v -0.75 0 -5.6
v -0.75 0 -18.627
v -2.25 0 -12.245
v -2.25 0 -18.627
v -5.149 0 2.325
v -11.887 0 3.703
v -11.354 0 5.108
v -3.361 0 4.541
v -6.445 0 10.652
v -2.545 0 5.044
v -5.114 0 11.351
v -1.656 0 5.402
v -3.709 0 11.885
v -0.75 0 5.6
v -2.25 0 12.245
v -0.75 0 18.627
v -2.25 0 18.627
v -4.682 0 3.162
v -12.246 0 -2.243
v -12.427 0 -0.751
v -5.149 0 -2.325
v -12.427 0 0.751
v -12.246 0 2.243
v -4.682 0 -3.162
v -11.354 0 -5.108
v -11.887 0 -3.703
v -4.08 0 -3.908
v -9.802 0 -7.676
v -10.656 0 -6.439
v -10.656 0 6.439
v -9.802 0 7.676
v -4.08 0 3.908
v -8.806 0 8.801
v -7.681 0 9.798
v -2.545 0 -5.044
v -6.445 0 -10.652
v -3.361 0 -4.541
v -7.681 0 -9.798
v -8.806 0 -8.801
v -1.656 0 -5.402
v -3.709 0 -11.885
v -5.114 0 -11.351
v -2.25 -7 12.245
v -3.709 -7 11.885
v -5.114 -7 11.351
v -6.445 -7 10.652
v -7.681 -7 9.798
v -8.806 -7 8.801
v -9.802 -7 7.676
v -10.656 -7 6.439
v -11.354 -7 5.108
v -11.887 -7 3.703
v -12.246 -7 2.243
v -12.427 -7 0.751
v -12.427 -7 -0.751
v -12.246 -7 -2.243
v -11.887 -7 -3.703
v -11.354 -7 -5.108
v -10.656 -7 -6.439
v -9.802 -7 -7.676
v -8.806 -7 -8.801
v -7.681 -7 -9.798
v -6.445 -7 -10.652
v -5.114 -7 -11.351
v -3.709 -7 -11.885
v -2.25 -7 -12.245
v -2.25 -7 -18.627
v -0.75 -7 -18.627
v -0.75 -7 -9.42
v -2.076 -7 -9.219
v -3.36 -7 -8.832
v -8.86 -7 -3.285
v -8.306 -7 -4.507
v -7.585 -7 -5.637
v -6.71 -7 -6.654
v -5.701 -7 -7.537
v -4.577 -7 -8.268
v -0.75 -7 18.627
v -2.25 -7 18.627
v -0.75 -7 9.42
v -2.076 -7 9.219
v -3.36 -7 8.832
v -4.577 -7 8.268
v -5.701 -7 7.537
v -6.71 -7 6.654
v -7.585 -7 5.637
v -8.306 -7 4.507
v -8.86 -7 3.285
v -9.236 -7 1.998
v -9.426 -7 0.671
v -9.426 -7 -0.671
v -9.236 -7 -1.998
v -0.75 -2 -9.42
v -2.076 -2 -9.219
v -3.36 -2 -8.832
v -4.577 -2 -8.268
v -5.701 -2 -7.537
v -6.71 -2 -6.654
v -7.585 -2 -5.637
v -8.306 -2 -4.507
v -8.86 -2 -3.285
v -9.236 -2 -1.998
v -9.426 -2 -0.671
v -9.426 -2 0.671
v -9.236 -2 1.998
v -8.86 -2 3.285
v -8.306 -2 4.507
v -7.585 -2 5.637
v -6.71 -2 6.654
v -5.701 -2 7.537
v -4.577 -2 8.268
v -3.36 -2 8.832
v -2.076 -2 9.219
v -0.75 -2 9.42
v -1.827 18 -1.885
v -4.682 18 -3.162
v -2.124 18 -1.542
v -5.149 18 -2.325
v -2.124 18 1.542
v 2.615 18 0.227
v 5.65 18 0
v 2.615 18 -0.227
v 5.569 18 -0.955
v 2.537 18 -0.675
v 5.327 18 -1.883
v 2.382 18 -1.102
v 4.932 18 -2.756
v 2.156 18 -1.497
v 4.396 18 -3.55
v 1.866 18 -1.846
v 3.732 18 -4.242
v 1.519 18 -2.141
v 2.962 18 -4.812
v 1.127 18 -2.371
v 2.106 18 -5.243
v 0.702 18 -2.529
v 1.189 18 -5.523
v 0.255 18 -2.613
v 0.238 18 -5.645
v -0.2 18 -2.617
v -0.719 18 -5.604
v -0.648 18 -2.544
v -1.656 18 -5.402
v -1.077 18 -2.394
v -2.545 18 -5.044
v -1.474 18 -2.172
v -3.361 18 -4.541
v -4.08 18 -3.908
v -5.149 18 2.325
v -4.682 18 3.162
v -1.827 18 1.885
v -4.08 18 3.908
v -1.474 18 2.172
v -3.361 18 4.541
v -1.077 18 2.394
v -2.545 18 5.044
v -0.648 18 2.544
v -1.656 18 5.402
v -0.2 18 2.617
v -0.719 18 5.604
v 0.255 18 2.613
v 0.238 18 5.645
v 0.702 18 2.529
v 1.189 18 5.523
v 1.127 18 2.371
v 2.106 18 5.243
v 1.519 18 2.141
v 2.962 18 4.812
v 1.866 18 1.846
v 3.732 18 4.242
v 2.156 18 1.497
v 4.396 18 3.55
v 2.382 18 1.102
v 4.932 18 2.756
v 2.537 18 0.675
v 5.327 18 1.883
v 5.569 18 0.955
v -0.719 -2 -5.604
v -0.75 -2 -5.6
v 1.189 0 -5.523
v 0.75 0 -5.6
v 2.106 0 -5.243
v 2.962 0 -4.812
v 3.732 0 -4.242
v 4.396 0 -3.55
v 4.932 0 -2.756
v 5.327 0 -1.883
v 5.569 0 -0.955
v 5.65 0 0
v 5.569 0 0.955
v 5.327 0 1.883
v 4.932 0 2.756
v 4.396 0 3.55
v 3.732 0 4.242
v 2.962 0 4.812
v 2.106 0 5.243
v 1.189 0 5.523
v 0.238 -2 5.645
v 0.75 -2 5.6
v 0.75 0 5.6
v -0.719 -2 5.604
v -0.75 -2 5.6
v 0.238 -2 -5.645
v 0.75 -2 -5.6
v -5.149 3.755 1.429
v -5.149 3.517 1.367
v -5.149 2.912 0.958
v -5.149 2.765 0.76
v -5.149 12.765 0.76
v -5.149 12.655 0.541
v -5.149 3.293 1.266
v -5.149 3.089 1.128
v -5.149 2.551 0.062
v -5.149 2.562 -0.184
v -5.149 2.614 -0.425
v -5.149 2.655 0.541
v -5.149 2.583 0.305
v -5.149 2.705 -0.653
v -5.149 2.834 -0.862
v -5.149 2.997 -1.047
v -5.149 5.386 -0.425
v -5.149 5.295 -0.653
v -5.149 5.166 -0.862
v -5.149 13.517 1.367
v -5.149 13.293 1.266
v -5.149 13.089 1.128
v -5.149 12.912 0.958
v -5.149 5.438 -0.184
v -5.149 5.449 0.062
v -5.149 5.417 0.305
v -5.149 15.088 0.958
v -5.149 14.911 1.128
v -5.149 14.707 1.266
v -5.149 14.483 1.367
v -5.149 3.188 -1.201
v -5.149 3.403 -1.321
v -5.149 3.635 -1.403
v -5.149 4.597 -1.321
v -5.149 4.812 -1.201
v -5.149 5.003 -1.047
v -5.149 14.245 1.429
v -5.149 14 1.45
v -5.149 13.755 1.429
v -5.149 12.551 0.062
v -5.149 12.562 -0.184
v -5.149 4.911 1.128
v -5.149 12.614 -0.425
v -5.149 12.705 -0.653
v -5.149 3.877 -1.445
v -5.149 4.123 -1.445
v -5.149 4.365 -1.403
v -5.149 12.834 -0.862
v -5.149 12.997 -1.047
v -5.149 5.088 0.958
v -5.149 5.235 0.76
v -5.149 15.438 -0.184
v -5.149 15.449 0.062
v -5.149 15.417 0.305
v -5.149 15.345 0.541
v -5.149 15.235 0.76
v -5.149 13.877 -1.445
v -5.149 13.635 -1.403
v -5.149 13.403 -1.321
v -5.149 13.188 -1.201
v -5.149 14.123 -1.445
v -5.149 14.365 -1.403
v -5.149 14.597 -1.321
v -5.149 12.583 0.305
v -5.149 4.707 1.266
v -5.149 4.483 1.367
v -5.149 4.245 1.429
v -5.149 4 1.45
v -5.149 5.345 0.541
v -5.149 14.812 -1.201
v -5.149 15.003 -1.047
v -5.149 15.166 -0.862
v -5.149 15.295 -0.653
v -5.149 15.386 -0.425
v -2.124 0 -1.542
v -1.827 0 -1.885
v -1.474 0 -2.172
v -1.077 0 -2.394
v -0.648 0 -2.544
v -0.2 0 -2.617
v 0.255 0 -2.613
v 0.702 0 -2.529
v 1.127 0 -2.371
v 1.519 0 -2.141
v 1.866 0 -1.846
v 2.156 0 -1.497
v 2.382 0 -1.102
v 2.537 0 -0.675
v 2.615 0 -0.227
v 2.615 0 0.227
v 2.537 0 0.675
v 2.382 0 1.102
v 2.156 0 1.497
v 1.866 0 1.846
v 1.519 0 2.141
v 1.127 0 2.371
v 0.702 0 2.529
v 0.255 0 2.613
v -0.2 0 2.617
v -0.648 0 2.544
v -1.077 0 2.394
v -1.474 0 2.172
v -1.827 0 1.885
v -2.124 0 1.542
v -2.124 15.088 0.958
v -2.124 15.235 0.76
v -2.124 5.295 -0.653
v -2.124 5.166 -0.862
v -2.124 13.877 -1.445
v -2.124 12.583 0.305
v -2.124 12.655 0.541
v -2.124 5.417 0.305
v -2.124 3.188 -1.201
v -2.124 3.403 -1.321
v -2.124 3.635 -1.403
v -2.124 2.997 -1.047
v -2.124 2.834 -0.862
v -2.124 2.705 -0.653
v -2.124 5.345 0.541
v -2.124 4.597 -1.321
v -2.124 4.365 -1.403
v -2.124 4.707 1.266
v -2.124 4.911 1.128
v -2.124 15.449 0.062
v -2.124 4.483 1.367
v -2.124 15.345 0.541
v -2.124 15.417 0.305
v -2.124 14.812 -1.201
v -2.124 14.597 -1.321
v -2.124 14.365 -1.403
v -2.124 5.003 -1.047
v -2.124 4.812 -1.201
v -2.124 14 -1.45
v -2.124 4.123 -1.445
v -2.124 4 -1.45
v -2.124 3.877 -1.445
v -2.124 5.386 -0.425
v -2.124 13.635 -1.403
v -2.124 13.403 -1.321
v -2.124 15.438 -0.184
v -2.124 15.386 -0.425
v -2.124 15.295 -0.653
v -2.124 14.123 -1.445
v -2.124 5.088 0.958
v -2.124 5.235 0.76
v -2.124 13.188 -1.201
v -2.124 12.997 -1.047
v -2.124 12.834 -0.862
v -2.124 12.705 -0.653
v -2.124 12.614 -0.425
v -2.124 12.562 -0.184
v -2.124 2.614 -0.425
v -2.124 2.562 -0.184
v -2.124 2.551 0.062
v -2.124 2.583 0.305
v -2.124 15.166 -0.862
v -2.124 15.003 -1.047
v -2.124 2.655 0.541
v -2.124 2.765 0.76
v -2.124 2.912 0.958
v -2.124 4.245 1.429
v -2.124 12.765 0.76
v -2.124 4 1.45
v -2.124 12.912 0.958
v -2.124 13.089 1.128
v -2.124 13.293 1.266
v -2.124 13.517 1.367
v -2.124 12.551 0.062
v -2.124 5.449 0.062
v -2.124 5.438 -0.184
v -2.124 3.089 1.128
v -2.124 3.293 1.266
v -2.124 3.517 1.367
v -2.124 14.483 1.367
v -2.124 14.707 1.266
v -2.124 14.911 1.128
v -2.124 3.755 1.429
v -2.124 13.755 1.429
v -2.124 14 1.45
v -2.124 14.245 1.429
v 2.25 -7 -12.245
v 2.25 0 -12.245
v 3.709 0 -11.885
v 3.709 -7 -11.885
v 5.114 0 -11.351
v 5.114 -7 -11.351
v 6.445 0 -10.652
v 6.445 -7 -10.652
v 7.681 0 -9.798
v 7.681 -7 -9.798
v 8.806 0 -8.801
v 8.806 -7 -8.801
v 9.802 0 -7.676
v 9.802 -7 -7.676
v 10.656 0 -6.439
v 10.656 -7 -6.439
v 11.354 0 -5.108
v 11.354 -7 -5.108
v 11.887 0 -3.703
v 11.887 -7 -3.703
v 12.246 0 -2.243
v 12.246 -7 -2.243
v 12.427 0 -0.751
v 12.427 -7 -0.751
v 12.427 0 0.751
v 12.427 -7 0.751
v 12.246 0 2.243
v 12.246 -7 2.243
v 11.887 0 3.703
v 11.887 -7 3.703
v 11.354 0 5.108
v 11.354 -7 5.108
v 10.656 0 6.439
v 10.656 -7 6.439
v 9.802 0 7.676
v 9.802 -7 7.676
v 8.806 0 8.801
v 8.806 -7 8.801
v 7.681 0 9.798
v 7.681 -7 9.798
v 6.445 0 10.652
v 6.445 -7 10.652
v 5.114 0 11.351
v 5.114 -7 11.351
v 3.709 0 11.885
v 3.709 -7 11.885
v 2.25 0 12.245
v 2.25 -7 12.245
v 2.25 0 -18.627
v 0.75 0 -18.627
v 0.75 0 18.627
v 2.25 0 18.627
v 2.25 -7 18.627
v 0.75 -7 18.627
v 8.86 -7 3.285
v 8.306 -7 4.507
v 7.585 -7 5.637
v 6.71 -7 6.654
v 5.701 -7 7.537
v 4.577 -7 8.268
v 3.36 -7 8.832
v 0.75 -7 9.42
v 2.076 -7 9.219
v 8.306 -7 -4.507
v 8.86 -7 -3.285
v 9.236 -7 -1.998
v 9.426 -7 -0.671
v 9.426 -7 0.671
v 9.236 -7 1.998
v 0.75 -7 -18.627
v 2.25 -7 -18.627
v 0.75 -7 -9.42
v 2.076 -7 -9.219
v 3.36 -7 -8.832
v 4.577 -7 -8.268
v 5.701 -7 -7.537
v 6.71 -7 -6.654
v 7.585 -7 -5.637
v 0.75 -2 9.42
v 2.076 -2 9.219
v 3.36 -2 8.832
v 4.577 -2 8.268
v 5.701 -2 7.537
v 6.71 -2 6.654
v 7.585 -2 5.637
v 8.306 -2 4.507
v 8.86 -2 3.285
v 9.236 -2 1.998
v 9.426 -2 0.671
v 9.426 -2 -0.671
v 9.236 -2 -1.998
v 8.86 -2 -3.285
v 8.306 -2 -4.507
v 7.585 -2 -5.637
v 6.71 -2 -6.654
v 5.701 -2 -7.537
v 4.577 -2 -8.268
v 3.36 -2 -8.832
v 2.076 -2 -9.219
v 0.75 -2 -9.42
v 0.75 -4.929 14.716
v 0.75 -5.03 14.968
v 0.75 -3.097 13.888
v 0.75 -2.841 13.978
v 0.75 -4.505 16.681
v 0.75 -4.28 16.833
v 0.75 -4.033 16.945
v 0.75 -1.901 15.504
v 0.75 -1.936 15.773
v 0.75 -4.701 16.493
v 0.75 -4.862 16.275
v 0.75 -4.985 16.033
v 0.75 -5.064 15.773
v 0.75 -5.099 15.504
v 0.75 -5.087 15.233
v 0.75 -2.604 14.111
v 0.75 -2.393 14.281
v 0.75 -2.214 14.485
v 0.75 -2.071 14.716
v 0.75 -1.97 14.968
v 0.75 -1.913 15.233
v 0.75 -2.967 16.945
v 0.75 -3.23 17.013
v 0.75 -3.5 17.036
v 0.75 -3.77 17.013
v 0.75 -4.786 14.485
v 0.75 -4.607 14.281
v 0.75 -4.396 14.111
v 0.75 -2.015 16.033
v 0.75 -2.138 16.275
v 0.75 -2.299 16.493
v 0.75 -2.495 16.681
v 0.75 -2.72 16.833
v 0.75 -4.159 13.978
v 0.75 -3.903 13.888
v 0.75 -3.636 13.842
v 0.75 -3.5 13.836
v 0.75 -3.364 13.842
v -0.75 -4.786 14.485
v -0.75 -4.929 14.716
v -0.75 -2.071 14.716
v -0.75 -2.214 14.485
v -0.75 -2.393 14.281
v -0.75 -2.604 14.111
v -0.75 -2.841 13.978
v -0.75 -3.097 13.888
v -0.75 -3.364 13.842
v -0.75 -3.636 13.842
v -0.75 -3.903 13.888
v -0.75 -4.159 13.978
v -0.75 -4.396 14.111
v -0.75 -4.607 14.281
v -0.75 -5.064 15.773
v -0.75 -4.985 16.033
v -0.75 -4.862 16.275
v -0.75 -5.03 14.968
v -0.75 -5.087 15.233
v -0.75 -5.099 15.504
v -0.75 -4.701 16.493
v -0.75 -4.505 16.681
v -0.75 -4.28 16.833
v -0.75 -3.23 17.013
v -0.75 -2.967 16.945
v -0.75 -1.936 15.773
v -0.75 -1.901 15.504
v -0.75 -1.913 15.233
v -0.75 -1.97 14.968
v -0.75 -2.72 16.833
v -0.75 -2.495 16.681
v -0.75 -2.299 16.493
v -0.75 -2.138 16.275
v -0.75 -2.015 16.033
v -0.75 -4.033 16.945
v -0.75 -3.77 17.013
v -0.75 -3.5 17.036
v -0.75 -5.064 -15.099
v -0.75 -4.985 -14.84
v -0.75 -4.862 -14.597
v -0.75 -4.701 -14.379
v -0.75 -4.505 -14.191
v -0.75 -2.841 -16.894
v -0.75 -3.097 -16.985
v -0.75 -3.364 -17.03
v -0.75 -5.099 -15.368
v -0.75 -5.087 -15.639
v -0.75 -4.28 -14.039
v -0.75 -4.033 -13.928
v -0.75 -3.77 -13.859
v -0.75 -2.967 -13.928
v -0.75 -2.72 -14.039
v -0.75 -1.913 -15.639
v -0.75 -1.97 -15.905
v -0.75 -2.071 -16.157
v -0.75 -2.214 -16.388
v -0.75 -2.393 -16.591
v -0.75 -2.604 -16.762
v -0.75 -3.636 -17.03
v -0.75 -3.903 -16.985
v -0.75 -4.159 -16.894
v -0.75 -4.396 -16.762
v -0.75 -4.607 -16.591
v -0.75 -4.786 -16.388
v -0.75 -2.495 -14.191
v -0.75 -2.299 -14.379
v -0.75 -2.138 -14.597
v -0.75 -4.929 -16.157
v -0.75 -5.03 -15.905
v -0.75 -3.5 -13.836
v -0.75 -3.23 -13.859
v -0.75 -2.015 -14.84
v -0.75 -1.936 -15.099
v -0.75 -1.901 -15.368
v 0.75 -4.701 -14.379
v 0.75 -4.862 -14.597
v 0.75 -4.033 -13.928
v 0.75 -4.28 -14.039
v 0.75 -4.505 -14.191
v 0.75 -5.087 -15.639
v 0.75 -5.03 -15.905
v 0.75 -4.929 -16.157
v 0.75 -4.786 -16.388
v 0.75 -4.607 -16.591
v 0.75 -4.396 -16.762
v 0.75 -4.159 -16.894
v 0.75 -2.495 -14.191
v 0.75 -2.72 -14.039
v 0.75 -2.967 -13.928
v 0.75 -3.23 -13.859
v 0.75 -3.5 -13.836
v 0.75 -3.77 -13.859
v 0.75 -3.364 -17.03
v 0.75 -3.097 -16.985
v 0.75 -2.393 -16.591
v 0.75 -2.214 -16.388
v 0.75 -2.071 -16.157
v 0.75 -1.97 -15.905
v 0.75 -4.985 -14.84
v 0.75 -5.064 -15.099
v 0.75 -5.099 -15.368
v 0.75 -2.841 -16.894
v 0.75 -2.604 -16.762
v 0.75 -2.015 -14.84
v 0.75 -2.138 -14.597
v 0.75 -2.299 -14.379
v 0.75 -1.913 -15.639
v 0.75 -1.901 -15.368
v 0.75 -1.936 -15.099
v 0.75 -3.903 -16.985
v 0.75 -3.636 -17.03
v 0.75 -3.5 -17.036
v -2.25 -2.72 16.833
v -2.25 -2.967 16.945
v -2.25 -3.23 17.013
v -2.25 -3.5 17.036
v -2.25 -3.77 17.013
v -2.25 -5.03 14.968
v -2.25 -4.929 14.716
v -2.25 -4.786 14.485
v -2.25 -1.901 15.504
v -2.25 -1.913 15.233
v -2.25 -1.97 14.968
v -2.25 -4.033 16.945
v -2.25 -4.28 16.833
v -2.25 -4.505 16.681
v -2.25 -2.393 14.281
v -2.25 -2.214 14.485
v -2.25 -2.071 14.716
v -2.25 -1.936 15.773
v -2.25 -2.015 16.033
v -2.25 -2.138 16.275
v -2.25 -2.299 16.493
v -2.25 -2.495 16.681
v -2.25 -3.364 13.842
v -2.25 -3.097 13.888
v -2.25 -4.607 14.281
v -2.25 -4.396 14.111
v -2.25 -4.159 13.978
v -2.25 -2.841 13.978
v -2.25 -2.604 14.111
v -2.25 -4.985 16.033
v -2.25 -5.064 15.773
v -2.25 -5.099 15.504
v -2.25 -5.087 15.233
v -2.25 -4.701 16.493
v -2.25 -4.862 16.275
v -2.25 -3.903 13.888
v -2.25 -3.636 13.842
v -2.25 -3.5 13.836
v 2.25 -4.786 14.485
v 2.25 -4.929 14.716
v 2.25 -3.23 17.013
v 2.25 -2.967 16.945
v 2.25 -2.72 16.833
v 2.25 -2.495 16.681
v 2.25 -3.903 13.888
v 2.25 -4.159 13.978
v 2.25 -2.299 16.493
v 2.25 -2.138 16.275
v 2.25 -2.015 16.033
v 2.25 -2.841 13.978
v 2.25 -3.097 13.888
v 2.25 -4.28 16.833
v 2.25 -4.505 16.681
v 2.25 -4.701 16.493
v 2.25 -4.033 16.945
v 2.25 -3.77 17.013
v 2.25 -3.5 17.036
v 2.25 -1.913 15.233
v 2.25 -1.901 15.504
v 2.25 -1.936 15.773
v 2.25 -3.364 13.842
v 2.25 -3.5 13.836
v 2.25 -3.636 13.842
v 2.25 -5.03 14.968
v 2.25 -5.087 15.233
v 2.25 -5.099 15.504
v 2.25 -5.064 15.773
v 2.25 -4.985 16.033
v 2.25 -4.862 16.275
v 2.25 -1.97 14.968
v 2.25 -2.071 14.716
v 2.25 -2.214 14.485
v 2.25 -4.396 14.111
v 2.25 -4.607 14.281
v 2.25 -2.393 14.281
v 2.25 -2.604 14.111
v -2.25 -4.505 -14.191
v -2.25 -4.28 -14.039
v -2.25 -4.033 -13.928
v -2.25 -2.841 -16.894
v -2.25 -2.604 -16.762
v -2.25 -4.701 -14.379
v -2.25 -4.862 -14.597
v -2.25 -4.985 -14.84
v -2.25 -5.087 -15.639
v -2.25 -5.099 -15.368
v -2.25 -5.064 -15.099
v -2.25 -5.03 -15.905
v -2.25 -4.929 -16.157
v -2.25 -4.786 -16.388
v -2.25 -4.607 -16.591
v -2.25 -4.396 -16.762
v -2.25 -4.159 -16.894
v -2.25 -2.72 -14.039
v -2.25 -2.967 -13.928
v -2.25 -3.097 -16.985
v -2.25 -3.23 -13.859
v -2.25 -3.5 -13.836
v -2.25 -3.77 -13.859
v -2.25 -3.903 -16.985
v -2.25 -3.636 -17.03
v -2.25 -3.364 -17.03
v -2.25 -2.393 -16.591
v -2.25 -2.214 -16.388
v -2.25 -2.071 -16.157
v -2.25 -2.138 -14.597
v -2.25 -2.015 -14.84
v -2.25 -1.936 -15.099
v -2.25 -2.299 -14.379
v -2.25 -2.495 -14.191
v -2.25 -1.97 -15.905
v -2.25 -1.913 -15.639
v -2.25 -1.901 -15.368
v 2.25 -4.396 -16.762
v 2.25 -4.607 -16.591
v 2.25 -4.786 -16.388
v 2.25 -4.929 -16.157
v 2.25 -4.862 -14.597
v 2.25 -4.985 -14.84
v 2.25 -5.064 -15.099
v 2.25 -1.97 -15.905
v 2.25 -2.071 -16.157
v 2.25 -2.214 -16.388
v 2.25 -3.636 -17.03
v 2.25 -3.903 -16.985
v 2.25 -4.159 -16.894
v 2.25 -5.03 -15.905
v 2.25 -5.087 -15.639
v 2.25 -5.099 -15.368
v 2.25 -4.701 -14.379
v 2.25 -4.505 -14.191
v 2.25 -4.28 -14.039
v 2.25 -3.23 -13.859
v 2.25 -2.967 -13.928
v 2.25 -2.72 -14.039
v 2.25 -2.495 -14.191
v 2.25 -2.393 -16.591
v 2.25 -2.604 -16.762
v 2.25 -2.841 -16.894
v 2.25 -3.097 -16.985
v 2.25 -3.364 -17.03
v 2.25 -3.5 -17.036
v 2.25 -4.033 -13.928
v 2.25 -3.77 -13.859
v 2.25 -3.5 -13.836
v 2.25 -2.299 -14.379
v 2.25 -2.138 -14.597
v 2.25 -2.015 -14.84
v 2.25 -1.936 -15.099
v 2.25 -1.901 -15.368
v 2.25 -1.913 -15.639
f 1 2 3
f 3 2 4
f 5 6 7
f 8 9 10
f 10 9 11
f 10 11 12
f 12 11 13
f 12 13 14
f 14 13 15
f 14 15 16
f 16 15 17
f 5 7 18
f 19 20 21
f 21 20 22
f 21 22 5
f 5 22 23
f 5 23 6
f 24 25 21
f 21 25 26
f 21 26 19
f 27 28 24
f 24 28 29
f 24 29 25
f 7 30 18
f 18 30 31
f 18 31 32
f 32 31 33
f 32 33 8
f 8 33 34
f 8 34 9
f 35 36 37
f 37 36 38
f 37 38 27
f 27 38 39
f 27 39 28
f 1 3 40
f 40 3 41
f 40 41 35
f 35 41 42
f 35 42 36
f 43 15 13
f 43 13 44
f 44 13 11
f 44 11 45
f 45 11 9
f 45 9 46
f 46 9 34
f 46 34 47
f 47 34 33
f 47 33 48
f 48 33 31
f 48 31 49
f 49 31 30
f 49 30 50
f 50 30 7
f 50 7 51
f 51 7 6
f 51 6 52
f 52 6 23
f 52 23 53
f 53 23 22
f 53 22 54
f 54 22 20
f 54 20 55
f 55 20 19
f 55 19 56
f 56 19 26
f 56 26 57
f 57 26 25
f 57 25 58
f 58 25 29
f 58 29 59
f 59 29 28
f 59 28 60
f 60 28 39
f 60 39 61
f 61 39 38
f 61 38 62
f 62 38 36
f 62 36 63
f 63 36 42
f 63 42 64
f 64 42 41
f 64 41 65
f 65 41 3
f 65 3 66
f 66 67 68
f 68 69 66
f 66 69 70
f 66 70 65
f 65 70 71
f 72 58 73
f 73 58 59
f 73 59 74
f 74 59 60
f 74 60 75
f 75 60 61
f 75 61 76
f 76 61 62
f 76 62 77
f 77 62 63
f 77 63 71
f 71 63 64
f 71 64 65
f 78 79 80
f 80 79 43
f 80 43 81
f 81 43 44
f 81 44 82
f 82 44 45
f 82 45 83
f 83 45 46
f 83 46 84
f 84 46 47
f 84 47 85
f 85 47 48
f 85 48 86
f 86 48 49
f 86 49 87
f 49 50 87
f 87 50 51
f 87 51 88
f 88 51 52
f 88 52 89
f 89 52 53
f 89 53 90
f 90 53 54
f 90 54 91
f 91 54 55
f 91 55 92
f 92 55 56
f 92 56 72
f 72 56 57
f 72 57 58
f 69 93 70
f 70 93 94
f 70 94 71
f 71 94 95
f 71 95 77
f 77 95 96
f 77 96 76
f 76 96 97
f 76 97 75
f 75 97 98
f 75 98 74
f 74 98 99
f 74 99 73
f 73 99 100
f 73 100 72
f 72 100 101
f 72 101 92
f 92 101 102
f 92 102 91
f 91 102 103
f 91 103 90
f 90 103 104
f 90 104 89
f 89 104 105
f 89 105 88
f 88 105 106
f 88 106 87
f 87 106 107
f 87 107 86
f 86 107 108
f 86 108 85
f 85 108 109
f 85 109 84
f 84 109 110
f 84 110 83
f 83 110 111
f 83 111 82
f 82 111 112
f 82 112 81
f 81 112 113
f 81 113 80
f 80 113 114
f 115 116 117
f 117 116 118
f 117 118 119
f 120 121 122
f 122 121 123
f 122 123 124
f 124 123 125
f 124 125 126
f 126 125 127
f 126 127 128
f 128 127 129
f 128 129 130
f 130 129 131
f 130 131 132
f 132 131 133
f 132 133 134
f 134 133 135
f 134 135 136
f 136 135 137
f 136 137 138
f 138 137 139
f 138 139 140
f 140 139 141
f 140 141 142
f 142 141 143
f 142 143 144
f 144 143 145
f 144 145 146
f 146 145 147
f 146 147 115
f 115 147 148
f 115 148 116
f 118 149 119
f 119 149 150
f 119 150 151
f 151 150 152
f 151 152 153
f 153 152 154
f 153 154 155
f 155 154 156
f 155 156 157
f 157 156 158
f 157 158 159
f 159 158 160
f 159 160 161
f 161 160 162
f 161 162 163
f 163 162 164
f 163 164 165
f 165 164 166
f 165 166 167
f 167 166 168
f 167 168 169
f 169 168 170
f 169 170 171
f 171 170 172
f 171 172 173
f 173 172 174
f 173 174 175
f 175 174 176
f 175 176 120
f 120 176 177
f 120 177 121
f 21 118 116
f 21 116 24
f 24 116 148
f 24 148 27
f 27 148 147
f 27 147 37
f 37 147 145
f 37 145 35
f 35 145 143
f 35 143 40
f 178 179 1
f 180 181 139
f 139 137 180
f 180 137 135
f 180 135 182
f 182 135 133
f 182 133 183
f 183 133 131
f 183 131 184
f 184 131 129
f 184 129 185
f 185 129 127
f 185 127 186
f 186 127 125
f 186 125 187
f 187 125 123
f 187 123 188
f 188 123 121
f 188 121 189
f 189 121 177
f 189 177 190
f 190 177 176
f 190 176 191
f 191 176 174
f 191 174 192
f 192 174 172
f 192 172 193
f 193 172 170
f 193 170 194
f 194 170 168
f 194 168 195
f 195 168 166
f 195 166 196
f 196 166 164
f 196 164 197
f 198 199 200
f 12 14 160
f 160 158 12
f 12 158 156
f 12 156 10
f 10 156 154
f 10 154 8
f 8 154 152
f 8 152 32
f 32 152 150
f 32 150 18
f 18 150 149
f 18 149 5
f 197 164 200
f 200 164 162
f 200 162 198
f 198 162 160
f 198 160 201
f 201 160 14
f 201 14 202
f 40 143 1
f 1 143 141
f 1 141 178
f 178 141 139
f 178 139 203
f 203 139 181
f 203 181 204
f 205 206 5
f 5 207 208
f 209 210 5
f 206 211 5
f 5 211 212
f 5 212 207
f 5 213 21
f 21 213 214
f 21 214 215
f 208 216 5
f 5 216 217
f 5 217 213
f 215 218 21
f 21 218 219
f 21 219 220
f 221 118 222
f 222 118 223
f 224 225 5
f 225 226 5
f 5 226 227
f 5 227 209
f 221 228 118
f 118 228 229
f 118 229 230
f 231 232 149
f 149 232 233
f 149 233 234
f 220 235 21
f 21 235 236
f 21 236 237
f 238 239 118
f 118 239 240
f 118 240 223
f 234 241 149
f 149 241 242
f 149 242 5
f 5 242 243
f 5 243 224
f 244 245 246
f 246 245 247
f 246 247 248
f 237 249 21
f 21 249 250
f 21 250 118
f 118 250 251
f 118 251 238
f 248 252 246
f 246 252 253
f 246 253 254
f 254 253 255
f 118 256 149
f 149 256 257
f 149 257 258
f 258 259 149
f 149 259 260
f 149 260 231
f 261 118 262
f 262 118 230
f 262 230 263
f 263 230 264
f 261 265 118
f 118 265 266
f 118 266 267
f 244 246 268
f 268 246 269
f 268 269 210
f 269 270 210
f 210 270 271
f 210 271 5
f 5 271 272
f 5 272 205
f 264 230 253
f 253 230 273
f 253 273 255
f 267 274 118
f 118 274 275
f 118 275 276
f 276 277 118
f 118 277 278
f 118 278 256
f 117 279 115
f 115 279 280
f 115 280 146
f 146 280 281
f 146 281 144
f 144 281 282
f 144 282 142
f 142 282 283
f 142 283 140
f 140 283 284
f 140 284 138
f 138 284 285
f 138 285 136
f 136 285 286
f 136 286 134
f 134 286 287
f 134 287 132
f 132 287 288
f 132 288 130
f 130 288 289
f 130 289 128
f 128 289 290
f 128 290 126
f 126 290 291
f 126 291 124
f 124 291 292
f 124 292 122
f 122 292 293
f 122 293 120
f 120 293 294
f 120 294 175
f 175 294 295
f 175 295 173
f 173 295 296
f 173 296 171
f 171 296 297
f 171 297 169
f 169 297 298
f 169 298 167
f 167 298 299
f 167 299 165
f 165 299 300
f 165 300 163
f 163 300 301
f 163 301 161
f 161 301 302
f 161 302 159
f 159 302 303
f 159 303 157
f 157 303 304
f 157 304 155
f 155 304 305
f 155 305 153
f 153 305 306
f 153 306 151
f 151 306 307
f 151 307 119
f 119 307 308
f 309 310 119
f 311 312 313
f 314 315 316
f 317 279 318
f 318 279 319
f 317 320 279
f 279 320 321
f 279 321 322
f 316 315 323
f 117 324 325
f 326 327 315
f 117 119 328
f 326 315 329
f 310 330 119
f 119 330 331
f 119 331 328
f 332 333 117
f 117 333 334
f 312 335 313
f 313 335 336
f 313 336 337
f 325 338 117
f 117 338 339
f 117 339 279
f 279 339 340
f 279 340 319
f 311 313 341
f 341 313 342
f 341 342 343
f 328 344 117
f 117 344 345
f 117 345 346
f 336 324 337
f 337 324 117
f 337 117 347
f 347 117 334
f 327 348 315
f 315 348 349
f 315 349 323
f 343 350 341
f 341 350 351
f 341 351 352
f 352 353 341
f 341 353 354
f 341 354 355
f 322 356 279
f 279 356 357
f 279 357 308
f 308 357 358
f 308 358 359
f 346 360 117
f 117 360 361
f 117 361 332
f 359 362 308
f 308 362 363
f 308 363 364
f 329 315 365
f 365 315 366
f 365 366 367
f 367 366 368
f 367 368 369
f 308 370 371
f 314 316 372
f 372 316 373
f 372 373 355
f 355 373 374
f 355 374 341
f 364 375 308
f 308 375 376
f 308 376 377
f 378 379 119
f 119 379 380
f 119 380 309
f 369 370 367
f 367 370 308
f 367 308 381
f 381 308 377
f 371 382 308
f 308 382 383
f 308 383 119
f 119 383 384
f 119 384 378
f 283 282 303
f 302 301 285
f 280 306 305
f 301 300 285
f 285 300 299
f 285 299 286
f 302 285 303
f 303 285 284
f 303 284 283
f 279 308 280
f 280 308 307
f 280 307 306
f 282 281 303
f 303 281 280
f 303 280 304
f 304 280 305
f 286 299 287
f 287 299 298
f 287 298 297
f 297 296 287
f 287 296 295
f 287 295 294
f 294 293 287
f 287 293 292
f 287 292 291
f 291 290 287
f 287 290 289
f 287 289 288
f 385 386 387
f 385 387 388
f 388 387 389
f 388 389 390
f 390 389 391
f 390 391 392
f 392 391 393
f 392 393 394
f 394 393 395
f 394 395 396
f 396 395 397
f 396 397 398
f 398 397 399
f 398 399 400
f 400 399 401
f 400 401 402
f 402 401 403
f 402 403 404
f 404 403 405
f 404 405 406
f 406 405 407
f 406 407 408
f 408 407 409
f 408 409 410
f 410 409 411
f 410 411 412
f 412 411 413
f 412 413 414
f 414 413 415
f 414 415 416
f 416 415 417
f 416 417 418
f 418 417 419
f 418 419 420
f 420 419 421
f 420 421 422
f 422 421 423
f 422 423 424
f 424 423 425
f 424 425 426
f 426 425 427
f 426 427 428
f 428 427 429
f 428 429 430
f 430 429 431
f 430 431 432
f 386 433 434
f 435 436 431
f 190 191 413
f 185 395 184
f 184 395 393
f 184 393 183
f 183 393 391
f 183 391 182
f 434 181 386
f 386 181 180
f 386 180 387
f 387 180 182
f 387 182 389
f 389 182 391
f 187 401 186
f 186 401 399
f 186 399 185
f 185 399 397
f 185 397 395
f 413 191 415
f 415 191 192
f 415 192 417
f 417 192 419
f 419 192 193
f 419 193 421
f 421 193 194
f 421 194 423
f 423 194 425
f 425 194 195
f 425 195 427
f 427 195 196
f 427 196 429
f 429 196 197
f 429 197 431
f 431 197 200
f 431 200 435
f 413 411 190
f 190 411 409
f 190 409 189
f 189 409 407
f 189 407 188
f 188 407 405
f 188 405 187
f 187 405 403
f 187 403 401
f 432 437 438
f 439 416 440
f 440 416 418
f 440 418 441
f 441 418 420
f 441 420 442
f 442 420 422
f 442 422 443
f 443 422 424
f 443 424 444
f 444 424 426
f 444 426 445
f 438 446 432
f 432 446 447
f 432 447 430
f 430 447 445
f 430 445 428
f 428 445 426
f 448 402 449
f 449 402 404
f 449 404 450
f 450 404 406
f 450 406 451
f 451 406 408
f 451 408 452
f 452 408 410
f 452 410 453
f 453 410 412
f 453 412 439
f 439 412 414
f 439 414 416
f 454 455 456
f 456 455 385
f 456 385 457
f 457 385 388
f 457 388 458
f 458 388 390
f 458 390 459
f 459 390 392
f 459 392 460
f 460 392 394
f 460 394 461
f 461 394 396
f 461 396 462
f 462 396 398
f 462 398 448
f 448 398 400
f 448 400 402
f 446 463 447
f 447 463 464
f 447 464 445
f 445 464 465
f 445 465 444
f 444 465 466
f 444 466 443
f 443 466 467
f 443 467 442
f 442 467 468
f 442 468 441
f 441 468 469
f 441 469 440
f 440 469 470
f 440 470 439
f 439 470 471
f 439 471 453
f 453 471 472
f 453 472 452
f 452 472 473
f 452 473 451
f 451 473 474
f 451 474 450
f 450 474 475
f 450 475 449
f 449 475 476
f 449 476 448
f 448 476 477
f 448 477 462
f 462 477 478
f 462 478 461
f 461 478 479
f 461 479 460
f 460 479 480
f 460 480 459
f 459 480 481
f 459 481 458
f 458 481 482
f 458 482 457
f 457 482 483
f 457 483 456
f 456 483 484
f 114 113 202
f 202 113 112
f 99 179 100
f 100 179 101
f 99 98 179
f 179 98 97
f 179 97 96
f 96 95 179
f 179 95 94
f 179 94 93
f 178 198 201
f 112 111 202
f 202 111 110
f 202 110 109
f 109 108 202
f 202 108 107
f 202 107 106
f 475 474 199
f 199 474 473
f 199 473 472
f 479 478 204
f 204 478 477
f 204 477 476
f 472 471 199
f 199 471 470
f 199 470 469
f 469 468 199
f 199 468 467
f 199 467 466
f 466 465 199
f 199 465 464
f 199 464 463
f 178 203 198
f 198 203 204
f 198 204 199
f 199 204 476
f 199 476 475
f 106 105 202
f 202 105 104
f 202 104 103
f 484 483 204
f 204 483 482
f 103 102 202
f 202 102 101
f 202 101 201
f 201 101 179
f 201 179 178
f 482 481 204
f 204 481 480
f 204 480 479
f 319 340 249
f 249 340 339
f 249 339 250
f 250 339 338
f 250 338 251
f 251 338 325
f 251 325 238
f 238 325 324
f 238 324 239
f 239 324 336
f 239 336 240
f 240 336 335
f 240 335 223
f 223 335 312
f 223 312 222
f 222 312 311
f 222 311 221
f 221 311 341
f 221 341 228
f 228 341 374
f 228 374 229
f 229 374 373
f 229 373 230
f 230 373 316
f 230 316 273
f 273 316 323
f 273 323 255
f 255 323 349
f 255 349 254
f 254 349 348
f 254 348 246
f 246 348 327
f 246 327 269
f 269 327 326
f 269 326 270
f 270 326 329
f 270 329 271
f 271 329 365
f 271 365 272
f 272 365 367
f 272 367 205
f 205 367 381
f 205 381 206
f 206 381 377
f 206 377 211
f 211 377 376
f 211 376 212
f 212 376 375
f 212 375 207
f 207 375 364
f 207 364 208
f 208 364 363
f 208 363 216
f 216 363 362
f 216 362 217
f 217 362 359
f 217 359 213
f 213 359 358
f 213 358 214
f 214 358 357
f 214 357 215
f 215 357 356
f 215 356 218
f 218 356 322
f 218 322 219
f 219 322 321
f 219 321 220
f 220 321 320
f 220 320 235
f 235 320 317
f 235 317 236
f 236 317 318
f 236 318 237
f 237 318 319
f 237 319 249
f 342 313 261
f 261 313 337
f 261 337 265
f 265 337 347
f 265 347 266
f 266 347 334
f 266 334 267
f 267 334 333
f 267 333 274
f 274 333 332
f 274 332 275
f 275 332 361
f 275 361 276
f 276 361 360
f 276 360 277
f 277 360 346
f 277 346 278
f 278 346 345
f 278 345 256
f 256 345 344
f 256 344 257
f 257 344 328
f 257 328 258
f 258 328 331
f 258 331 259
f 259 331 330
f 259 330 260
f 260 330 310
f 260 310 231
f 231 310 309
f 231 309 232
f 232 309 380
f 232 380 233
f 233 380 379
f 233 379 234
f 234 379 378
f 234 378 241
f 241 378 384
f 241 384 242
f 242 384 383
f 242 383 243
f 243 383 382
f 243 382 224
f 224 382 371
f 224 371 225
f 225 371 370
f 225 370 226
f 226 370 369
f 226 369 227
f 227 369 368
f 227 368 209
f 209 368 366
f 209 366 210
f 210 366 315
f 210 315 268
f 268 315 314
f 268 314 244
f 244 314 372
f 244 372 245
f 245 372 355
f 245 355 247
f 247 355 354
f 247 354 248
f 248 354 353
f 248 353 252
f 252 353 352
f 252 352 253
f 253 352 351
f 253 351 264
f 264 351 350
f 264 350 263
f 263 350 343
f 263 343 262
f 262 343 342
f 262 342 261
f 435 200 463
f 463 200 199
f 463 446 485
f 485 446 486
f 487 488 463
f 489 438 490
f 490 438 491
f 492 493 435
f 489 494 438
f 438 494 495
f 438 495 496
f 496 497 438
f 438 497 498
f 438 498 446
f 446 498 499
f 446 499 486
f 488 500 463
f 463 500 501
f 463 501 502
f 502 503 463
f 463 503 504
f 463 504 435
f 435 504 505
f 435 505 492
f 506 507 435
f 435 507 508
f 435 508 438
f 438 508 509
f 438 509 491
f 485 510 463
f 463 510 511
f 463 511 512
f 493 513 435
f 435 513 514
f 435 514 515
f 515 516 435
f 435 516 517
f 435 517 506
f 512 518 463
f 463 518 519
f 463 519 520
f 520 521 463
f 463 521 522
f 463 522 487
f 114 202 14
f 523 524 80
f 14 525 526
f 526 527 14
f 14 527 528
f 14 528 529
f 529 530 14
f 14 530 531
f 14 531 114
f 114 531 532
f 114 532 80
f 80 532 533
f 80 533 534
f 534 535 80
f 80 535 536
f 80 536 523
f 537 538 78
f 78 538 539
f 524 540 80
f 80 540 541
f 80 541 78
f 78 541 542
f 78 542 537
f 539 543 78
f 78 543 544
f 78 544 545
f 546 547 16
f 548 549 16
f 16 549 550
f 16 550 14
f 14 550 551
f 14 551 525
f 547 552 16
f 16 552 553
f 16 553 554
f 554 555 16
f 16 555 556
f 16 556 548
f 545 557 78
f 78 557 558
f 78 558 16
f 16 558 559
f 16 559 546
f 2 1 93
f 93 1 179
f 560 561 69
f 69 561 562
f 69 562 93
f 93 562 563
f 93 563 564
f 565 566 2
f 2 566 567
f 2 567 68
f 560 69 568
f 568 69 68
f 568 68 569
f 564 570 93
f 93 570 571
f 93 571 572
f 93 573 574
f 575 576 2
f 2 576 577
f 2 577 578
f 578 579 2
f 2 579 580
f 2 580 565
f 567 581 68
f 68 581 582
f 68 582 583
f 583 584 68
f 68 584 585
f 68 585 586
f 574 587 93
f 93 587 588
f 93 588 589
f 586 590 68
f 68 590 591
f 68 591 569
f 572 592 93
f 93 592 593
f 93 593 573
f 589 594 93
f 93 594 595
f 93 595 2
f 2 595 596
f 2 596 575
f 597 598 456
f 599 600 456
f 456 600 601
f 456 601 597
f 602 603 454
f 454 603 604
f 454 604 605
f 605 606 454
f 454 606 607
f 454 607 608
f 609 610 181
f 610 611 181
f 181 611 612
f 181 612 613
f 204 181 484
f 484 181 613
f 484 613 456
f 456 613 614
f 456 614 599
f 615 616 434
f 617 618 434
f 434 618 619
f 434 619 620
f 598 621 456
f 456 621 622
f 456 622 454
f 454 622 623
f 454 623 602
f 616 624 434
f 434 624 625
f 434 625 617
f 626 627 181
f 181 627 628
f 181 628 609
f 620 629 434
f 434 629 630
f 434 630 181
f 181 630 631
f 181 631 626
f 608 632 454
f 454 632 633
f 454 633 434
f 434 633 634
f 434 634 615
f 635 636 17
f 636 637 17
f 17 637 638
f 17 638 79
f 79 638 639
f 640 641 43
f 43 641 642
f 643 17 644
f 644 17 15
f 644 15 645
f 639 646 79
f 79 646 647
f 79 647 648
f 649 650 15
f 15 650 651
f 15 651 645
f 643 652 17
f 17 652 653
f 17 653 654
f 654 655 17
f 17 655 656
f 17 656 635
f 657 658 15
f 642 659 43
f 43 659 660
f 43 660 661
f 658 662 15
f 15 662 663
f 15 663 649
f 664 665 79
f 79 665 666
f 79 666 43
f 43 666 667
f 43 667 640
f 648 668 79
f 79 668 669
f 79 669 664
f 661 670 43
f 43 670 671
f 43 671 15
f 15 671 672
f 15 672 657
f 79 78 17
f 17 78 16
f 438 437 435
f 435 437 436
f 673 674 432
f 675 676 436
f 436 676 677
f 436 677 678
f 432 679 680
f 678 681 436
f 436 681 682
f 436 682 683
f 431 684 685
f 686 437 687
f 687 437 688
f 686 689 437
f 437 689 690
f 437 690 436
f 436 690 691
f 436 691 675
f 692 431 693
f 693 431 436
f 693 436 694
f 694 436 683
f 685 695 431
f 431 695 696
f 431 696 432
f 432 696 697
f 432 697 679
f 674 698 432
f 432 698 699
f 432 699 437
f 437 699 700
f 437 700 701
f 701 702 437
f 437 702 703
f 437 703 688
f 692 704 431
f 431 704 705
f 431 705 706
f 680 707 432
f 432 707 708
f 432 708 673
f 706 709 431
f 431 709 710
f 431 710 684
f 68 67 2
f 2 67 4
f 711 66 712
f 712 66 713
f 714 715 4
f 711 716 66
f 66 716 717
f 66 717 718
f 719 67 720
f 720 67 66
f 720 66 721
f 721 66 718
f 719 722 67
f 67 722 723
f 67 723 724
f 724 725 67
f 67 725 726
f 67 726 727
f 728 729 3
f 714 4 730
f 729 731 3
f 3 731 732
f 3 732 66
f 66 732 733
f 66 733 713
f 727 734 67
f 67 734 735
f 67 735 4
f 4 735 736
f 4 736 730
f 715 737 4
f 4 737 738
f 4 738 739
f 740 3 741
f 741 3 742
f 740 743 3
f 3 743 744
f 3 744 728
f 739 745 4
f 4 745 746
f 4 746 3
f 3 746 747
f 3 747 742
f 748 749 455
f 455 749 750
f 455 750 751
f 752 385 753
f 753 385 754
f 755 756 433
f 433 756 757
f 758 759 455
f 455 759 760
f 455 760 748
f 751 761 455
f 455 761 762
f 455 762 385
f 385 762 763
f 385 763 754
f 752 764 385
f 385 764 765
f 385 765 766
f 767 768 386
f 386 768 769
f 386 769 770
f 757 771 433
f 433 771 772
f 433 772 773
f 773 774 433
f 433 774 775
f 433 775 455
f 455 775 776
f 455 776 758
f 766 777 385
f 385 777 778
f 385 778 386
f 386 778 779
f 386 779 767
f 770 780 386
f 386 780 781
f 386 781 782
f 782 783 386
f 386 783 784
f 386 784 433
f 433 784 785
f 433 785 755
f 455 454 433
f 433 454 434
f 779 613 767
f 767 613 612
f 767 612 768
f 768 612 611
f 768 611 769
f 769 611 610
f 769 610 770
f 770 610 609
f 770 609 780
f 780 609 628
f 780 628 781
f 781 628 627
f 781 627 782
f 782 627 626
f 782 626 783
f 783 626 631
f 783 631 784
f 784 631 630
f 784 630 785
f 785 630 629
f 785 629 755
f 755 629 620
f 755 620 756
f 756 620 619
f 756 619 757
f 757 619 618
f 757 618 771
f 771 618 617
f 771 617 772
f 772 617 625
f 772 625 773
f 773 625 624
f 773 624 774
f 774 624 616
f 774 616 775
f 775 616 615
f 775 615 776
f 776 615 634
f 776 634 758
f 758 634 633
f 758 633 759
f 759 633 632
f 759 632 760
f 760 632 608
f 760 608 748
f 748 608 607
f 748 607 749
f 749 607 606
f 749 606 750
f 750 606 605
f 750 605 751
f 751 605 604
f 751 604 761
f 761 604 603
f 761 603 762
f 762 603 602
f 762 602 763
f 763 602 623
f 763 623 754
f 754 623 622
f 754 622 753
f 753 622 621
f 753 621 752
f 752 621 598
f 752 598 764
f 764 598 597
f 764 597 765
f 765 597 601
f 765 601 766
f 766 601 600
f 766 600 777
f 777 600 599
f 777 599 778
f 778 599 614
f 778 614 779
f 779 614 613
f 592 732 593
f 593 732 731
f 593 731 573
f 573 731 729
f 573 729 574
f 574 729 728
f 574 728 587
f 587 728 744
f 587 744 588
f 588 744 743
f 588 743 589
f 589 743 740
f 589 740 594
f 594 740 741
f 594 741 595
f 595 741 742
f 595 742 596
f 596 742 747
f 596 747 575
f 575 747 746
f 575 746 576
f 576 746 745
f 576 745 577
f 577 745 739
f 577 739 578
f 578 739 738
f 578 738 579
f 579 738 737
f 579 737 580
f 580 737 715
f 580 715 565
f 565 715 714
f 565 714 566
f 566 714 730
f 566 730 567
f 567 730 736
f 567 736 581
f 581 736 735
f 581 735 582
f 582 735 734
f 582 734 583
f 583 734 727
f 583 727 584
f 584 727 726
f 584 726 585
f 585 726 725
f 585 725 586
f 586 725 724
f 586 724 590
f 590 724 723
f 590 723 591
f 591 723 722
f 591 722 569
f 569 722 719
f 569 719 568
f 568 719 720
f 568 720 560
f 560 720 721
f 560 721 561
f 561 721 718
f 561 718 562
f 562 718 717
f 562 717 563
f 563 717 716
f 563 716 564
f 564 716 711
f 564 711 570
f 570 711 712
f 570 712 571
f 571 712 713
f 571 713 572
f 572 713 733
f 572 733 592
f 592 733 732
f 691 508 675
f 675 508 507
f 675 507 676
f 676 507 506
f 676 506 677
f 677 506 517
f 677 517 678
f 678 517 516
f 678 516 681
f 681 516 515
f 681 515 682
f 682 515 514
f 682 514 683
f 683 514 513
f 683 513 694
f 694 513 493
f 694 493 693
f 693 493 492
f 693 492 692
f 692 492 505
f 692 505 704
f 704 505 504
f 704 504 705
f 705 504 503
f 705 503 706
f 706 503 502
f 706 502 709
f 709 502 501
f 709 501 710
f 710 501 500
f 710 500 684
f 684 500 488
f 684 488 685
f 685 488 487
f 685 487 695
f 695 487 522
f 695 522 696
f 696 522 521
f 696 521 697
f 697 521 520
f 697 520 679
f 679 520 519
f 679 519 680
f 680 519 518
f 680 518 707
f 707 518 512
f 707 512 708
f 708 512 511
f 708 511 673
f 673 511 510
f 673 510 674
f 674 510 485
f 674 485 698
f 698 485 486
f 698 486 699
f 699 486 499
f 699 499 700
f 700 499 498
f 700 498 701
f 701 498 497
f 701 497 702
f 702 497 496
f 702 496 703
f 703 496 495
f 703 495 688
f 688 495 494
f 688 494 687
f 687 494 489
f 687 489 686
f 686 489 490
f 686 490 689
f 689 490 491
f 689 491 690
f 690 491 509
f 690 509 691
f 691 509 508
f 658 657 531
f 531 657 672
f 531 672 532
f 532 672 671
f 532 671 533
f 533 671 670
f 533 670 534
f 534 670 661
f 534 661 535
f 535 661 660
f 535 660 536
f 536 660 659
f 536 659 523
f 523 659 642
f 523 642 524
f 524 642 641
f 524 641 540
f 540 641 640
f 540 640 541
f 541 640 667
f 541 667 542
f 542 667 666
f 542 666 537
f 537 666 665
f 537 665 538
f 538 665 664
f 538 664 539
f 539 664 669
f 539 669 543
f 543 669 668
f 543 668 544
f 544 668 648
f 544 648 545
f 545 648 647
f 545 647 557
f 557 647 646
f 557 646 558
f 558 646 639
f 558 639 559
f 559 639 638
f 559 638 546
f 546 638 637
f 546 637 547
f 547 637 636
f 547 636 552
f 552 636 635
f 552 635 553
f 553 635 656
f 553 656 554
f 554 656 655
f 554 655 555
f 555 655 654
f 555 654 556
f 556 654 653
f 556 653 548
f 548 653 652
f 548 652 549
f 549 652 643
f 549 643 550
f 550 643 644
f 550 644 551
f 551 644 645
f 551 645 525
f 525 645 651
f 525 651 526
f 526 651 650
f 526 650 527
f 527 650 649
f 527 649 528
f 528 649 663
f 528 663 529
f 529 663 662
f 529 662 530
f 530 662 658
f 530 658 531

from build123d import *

# Parameters (mm, degrees)
BOSS_EXTRUDE1_DEPTH = 18
SKETCH2_R           = 12.45
SKETCH2_R_2         = 9.45
BOSS_EXTRUDE2_DEPTH = 7
SKETCH3_R           = 12.45
BOSS_EXTRUDE3_DEPTH = 2
CUT_EXTRUDE1_REACH  = 30.085
SKETCH4_R           = 1.45
CUT_EXTRUDE3_REACH  = 32.578
BOSS_EXTRUDE5_START = -7
BOSS_EXTRUDE5_DEPTH = 7
SKETCH8_R           = 1.6
CUT_EXTRUDE4_DEPTH  = 30.783714089
CUT_EXTRUDE5_DEPTH  = 29.739904748


with BuildPart() as part:
    # Sketch1 → Boss-Extrude1 (new body)
    with BuildSketch(Plane(origin=(0, 0, 0), x_dir=(1, 0, 0), z_dir=(0, 1, 0))):
        with BuildLine():
            Line((-5.149418526, 2.325078245), (-5.149418526, -2.325078245))
            ThreePointArc((-5.149418526, -2.325078245), (5.65, 0), (-5.149418526, 2.325078245))
        make_face()
        with BuildLine():
            Line((-2.124418526, 1.541904967), (-2.124418526, -1.541904967))
            ThreePointArc((-2.124418526, -1.541904967), (2.625, 0), (-2.124418526, 1.541904967))
        make_face(mode=Mode.SUBTRACT)
    extrude(amount=BOSS_EXTRUDE1_DEPTH)



with BuildPart() as body_2:
    # Sketch2 → Boss-Extrude2 (new body)
    with BuildSketch(Plane.XZ):
        with Locations(Location((0, 0, 0), (0, 0, 270))):
            Circle(SKETCH2_R)
        with Locations(Location((0, 0, 0), (0, 0, 270))):
            Circle(SKETCH2_R_2, mode=Mode.SUBTRACT)
    extrude(amount=BOSS_EXTRUDE2_DEPTH)


with BuildPart() as part_1:
    add(part.part)

    add(body_2.part)  # Boss-Extrude3 merges body 2
    # Sketch3 → Boss-Extrude3 (add)
    with BuildSketch(Plane.XZ):
        with Locations(Location((0, 0, 0), (0, 0, 270))):
            Circle(SKETCH3_R)
    extrude(amount=BOSS_EXTRUDE3_DEPTH)

    # Sketch4 → Cut-Extrude1 (cut, up to next)
    with BuildSketch(Plane.ZY.offset(5.149418526), mode=Mode.PRIVATE) as cut_extrude1_sk1:
        with Locations((0, 14)):
            Circle(SKETCH4_R)
    cut_extrude1_tool1 = extrude(cut_extrude1_sk1.sketch, amount=-CUT_EXTRUDE1_REACH, mode=Mode.PRIVATE) & part_1.part
    # Sketch4 → Cut-Extrude1 (cut, up to next)
    with BuildSketch(Plane.ZY.offset(5.149418526), mode=Mode.PRIVATE) as cut_extrude1_sk2:
        with Locations((0, 4)):
            Circle(SKETCH4_R)
    cut_extrude1_tool2 = extrude(cut_extrude1_sk2.sketch, amount=-CUT_EXTRUDE1_REACH, mode=Mode.PRIVATE) & part_1.part
    add(cut_extrude1_tool1.solids().sort_by_distance((-5.149419, 14, 0))[0], mode=Mode.SUBTRACT)
    add(cut_extrude1_tool2.solids().sort_by_distance((-5.149419, 4, 0))[0], mode=Mode.SUBTRACT)

    # Sketch6 → Cut-Extrude3 (cut, up to next)
    with BuildSketch(Plane.XZ.offset(7), mode=Mode.PRIVATE) as cut_extrude3_sk1:
        with BuildLine():
            Line((0.75, 9.420191081), (0.75, 12.427389106))
            ThreePointArc((0.75, 12.427389106), (0, 12.45), (-0.75, 12.427389106))
            Line((-0.75, 12.427389106), (-0.75, 9.420191081))
            ThreePointArc((-0.75, 9.420191081), (0, 9.45), (0.75, 9.420191081))
        make_face()
    cut_extrude3_tool1 = extrude(cut_extrude3_sk1.sketch, amount=-CUT_EXTRUDE3_REACH, mode=Mode.PRIVATE) & part_1.part
    # Sketch6 → Cut-Extrude3 (cut, up to next)
    with BuildSketch(Plane.XZ.offset(7), mode=Mode.PRIVATE) as cut_extrude3_sk2:
        with BuildLine():
            Line((0.75, -9.420191081), (0.75, -12.427389106))
            ThreePointArc((0.75, -12.427389106), (0, -12.45), (-0.75, -12.427389106))
            Line((-0.75, -12.427389106), (-0.75, -9.420191081))
            ThreePointArc((-0.75, -9.420191081), (0, -9.45), (0.75, -9.420191081))
        make_face()
    cut_extrude3_tool2 = extrude(cut_extrude3_sk2.sketch, amount=-CUT_EXTRUDE3_REACH, mode=Mode.PRIVATE) & part_1.part
    add(cut_extrude3_tool1.solids().sort_by_distance((0, -7, 10.941262))[0], mode=Mode.SUBTRACT)
    add(cut_extrude3_tool2.solids().sort_by_distance((0, -7, -10.941262))[0], mode=Mode.SUBTRACT)

    # Sketch7 → Boss-Extrude5 (add)
    with BuildSketch(Plane.XZ.offset(7).offset(BOSS_EXTRUDE5_START)):
        with BuildLine():
            Line((-0.75, 12.427389106), (-0.75, 18.627389106))
            Line((-0.75, 18.627389106), (-2.25, 18.627389106))
            Line((-2.25, 18.627389106), (-2.25, 12.244998979))
            ThreePointArc((-2.25, 12.244998979), (-1.502769623, 12.35897178), (-0.75, 12.427389106))
        make_face()
        with BuildLine():
            Line((2.25, 18.627389106), (2.25, 12.244998979))
            ThreePointArc((2.25, 12.244998979), (1.502769623, 12.35897178), (0.75, 12.427389106))
            Line((0.75, 12.427389106), (0.75, 18.627389106))
            Line((0.75, 18.627389106), (2.25, 18.627389106))
        make_face()
        with BuildLine():
            Line((0.75, -12.427389106), (0.75, -18.627389106))
            Line((0.75, -18.627389106), (2.25, -18.627389106))
            Line((2.25, -18.627389106), (2.25, -12.244998979))
            ThreePointArc((2.25, -12.244998979), (1.502769623, -12.35897178), (0.75, -12.427389106))
        make_face()
        with BuildLine():
            Line((-2.25, -18.627389106), (-2.25, -12.244998979))
            ThreePointArc((-2.25, -12.244998979), (-1.502769623, -12.35897178), (-0.75, -12.427389106))
            Line((-0.75, -12.427389106), (-0.75, -18.627389106))
            Line((-0.75, -18.627389106), (-2.25, -18.627389106))
        make_face()
    extrude(amount=BOSS_EXTRUDE5_DEPTH)

    # Sketch8 → Cut-Extrude4 (cut, through all)
    with BuildSketch(Plane.ZY.offset(2.25)):
        with Locations(Location((-15.436194043, -3.5, 0), (0, 0, 180))):
            Circle(SKETCH8_R)
        with Locations(Location((15.436194043, -3.5, 0), (0, 0, 180))):
            Circle(SKETCH8_R)
    extrude(amount=-CUT_EXTRUDE4_DEPTH, mode=Mode.SUBTRACT)

    # Sketch9 → Cut-Extrude5 (cut, through all)
    with BuildSketch(Plane(origin=(0, 0, 0), x_dir=(1, 0, 0), z_dir=(0, 1, 0))):
        with BuildLine():
            Line((-0.75, -9.420191081), (-0.75, -5.6))
            ThreePointArc((-0.75, -5.6), (0, -5.65), (0.75, -5.6))
            Line((0.75, -5.6), (0.75, -9.420191081))
            ThreePointArc((0.75, -9.420191081), (0, -9.45), (-0.75, -9.420191081))
        make_face()
        with BuildLine():
            Line((-0.75, 5.6), (-0.75, 9.420191081))
            ThreePointArc((-0.75, 9.420191081), (0, 9.45), (0.75, 9.420191081))
            Line((0.75, 9.420191081), (0.75, 5.6))
            ThreePointArc((0.75, 5.6), (0, 5.65), (-0.75, 5.6))
        make_face()
    extrude(amount=-CUT_EXTRUDE5_DEPTH, mode=Mode.SUBTRACT)


solid = part_1.part
